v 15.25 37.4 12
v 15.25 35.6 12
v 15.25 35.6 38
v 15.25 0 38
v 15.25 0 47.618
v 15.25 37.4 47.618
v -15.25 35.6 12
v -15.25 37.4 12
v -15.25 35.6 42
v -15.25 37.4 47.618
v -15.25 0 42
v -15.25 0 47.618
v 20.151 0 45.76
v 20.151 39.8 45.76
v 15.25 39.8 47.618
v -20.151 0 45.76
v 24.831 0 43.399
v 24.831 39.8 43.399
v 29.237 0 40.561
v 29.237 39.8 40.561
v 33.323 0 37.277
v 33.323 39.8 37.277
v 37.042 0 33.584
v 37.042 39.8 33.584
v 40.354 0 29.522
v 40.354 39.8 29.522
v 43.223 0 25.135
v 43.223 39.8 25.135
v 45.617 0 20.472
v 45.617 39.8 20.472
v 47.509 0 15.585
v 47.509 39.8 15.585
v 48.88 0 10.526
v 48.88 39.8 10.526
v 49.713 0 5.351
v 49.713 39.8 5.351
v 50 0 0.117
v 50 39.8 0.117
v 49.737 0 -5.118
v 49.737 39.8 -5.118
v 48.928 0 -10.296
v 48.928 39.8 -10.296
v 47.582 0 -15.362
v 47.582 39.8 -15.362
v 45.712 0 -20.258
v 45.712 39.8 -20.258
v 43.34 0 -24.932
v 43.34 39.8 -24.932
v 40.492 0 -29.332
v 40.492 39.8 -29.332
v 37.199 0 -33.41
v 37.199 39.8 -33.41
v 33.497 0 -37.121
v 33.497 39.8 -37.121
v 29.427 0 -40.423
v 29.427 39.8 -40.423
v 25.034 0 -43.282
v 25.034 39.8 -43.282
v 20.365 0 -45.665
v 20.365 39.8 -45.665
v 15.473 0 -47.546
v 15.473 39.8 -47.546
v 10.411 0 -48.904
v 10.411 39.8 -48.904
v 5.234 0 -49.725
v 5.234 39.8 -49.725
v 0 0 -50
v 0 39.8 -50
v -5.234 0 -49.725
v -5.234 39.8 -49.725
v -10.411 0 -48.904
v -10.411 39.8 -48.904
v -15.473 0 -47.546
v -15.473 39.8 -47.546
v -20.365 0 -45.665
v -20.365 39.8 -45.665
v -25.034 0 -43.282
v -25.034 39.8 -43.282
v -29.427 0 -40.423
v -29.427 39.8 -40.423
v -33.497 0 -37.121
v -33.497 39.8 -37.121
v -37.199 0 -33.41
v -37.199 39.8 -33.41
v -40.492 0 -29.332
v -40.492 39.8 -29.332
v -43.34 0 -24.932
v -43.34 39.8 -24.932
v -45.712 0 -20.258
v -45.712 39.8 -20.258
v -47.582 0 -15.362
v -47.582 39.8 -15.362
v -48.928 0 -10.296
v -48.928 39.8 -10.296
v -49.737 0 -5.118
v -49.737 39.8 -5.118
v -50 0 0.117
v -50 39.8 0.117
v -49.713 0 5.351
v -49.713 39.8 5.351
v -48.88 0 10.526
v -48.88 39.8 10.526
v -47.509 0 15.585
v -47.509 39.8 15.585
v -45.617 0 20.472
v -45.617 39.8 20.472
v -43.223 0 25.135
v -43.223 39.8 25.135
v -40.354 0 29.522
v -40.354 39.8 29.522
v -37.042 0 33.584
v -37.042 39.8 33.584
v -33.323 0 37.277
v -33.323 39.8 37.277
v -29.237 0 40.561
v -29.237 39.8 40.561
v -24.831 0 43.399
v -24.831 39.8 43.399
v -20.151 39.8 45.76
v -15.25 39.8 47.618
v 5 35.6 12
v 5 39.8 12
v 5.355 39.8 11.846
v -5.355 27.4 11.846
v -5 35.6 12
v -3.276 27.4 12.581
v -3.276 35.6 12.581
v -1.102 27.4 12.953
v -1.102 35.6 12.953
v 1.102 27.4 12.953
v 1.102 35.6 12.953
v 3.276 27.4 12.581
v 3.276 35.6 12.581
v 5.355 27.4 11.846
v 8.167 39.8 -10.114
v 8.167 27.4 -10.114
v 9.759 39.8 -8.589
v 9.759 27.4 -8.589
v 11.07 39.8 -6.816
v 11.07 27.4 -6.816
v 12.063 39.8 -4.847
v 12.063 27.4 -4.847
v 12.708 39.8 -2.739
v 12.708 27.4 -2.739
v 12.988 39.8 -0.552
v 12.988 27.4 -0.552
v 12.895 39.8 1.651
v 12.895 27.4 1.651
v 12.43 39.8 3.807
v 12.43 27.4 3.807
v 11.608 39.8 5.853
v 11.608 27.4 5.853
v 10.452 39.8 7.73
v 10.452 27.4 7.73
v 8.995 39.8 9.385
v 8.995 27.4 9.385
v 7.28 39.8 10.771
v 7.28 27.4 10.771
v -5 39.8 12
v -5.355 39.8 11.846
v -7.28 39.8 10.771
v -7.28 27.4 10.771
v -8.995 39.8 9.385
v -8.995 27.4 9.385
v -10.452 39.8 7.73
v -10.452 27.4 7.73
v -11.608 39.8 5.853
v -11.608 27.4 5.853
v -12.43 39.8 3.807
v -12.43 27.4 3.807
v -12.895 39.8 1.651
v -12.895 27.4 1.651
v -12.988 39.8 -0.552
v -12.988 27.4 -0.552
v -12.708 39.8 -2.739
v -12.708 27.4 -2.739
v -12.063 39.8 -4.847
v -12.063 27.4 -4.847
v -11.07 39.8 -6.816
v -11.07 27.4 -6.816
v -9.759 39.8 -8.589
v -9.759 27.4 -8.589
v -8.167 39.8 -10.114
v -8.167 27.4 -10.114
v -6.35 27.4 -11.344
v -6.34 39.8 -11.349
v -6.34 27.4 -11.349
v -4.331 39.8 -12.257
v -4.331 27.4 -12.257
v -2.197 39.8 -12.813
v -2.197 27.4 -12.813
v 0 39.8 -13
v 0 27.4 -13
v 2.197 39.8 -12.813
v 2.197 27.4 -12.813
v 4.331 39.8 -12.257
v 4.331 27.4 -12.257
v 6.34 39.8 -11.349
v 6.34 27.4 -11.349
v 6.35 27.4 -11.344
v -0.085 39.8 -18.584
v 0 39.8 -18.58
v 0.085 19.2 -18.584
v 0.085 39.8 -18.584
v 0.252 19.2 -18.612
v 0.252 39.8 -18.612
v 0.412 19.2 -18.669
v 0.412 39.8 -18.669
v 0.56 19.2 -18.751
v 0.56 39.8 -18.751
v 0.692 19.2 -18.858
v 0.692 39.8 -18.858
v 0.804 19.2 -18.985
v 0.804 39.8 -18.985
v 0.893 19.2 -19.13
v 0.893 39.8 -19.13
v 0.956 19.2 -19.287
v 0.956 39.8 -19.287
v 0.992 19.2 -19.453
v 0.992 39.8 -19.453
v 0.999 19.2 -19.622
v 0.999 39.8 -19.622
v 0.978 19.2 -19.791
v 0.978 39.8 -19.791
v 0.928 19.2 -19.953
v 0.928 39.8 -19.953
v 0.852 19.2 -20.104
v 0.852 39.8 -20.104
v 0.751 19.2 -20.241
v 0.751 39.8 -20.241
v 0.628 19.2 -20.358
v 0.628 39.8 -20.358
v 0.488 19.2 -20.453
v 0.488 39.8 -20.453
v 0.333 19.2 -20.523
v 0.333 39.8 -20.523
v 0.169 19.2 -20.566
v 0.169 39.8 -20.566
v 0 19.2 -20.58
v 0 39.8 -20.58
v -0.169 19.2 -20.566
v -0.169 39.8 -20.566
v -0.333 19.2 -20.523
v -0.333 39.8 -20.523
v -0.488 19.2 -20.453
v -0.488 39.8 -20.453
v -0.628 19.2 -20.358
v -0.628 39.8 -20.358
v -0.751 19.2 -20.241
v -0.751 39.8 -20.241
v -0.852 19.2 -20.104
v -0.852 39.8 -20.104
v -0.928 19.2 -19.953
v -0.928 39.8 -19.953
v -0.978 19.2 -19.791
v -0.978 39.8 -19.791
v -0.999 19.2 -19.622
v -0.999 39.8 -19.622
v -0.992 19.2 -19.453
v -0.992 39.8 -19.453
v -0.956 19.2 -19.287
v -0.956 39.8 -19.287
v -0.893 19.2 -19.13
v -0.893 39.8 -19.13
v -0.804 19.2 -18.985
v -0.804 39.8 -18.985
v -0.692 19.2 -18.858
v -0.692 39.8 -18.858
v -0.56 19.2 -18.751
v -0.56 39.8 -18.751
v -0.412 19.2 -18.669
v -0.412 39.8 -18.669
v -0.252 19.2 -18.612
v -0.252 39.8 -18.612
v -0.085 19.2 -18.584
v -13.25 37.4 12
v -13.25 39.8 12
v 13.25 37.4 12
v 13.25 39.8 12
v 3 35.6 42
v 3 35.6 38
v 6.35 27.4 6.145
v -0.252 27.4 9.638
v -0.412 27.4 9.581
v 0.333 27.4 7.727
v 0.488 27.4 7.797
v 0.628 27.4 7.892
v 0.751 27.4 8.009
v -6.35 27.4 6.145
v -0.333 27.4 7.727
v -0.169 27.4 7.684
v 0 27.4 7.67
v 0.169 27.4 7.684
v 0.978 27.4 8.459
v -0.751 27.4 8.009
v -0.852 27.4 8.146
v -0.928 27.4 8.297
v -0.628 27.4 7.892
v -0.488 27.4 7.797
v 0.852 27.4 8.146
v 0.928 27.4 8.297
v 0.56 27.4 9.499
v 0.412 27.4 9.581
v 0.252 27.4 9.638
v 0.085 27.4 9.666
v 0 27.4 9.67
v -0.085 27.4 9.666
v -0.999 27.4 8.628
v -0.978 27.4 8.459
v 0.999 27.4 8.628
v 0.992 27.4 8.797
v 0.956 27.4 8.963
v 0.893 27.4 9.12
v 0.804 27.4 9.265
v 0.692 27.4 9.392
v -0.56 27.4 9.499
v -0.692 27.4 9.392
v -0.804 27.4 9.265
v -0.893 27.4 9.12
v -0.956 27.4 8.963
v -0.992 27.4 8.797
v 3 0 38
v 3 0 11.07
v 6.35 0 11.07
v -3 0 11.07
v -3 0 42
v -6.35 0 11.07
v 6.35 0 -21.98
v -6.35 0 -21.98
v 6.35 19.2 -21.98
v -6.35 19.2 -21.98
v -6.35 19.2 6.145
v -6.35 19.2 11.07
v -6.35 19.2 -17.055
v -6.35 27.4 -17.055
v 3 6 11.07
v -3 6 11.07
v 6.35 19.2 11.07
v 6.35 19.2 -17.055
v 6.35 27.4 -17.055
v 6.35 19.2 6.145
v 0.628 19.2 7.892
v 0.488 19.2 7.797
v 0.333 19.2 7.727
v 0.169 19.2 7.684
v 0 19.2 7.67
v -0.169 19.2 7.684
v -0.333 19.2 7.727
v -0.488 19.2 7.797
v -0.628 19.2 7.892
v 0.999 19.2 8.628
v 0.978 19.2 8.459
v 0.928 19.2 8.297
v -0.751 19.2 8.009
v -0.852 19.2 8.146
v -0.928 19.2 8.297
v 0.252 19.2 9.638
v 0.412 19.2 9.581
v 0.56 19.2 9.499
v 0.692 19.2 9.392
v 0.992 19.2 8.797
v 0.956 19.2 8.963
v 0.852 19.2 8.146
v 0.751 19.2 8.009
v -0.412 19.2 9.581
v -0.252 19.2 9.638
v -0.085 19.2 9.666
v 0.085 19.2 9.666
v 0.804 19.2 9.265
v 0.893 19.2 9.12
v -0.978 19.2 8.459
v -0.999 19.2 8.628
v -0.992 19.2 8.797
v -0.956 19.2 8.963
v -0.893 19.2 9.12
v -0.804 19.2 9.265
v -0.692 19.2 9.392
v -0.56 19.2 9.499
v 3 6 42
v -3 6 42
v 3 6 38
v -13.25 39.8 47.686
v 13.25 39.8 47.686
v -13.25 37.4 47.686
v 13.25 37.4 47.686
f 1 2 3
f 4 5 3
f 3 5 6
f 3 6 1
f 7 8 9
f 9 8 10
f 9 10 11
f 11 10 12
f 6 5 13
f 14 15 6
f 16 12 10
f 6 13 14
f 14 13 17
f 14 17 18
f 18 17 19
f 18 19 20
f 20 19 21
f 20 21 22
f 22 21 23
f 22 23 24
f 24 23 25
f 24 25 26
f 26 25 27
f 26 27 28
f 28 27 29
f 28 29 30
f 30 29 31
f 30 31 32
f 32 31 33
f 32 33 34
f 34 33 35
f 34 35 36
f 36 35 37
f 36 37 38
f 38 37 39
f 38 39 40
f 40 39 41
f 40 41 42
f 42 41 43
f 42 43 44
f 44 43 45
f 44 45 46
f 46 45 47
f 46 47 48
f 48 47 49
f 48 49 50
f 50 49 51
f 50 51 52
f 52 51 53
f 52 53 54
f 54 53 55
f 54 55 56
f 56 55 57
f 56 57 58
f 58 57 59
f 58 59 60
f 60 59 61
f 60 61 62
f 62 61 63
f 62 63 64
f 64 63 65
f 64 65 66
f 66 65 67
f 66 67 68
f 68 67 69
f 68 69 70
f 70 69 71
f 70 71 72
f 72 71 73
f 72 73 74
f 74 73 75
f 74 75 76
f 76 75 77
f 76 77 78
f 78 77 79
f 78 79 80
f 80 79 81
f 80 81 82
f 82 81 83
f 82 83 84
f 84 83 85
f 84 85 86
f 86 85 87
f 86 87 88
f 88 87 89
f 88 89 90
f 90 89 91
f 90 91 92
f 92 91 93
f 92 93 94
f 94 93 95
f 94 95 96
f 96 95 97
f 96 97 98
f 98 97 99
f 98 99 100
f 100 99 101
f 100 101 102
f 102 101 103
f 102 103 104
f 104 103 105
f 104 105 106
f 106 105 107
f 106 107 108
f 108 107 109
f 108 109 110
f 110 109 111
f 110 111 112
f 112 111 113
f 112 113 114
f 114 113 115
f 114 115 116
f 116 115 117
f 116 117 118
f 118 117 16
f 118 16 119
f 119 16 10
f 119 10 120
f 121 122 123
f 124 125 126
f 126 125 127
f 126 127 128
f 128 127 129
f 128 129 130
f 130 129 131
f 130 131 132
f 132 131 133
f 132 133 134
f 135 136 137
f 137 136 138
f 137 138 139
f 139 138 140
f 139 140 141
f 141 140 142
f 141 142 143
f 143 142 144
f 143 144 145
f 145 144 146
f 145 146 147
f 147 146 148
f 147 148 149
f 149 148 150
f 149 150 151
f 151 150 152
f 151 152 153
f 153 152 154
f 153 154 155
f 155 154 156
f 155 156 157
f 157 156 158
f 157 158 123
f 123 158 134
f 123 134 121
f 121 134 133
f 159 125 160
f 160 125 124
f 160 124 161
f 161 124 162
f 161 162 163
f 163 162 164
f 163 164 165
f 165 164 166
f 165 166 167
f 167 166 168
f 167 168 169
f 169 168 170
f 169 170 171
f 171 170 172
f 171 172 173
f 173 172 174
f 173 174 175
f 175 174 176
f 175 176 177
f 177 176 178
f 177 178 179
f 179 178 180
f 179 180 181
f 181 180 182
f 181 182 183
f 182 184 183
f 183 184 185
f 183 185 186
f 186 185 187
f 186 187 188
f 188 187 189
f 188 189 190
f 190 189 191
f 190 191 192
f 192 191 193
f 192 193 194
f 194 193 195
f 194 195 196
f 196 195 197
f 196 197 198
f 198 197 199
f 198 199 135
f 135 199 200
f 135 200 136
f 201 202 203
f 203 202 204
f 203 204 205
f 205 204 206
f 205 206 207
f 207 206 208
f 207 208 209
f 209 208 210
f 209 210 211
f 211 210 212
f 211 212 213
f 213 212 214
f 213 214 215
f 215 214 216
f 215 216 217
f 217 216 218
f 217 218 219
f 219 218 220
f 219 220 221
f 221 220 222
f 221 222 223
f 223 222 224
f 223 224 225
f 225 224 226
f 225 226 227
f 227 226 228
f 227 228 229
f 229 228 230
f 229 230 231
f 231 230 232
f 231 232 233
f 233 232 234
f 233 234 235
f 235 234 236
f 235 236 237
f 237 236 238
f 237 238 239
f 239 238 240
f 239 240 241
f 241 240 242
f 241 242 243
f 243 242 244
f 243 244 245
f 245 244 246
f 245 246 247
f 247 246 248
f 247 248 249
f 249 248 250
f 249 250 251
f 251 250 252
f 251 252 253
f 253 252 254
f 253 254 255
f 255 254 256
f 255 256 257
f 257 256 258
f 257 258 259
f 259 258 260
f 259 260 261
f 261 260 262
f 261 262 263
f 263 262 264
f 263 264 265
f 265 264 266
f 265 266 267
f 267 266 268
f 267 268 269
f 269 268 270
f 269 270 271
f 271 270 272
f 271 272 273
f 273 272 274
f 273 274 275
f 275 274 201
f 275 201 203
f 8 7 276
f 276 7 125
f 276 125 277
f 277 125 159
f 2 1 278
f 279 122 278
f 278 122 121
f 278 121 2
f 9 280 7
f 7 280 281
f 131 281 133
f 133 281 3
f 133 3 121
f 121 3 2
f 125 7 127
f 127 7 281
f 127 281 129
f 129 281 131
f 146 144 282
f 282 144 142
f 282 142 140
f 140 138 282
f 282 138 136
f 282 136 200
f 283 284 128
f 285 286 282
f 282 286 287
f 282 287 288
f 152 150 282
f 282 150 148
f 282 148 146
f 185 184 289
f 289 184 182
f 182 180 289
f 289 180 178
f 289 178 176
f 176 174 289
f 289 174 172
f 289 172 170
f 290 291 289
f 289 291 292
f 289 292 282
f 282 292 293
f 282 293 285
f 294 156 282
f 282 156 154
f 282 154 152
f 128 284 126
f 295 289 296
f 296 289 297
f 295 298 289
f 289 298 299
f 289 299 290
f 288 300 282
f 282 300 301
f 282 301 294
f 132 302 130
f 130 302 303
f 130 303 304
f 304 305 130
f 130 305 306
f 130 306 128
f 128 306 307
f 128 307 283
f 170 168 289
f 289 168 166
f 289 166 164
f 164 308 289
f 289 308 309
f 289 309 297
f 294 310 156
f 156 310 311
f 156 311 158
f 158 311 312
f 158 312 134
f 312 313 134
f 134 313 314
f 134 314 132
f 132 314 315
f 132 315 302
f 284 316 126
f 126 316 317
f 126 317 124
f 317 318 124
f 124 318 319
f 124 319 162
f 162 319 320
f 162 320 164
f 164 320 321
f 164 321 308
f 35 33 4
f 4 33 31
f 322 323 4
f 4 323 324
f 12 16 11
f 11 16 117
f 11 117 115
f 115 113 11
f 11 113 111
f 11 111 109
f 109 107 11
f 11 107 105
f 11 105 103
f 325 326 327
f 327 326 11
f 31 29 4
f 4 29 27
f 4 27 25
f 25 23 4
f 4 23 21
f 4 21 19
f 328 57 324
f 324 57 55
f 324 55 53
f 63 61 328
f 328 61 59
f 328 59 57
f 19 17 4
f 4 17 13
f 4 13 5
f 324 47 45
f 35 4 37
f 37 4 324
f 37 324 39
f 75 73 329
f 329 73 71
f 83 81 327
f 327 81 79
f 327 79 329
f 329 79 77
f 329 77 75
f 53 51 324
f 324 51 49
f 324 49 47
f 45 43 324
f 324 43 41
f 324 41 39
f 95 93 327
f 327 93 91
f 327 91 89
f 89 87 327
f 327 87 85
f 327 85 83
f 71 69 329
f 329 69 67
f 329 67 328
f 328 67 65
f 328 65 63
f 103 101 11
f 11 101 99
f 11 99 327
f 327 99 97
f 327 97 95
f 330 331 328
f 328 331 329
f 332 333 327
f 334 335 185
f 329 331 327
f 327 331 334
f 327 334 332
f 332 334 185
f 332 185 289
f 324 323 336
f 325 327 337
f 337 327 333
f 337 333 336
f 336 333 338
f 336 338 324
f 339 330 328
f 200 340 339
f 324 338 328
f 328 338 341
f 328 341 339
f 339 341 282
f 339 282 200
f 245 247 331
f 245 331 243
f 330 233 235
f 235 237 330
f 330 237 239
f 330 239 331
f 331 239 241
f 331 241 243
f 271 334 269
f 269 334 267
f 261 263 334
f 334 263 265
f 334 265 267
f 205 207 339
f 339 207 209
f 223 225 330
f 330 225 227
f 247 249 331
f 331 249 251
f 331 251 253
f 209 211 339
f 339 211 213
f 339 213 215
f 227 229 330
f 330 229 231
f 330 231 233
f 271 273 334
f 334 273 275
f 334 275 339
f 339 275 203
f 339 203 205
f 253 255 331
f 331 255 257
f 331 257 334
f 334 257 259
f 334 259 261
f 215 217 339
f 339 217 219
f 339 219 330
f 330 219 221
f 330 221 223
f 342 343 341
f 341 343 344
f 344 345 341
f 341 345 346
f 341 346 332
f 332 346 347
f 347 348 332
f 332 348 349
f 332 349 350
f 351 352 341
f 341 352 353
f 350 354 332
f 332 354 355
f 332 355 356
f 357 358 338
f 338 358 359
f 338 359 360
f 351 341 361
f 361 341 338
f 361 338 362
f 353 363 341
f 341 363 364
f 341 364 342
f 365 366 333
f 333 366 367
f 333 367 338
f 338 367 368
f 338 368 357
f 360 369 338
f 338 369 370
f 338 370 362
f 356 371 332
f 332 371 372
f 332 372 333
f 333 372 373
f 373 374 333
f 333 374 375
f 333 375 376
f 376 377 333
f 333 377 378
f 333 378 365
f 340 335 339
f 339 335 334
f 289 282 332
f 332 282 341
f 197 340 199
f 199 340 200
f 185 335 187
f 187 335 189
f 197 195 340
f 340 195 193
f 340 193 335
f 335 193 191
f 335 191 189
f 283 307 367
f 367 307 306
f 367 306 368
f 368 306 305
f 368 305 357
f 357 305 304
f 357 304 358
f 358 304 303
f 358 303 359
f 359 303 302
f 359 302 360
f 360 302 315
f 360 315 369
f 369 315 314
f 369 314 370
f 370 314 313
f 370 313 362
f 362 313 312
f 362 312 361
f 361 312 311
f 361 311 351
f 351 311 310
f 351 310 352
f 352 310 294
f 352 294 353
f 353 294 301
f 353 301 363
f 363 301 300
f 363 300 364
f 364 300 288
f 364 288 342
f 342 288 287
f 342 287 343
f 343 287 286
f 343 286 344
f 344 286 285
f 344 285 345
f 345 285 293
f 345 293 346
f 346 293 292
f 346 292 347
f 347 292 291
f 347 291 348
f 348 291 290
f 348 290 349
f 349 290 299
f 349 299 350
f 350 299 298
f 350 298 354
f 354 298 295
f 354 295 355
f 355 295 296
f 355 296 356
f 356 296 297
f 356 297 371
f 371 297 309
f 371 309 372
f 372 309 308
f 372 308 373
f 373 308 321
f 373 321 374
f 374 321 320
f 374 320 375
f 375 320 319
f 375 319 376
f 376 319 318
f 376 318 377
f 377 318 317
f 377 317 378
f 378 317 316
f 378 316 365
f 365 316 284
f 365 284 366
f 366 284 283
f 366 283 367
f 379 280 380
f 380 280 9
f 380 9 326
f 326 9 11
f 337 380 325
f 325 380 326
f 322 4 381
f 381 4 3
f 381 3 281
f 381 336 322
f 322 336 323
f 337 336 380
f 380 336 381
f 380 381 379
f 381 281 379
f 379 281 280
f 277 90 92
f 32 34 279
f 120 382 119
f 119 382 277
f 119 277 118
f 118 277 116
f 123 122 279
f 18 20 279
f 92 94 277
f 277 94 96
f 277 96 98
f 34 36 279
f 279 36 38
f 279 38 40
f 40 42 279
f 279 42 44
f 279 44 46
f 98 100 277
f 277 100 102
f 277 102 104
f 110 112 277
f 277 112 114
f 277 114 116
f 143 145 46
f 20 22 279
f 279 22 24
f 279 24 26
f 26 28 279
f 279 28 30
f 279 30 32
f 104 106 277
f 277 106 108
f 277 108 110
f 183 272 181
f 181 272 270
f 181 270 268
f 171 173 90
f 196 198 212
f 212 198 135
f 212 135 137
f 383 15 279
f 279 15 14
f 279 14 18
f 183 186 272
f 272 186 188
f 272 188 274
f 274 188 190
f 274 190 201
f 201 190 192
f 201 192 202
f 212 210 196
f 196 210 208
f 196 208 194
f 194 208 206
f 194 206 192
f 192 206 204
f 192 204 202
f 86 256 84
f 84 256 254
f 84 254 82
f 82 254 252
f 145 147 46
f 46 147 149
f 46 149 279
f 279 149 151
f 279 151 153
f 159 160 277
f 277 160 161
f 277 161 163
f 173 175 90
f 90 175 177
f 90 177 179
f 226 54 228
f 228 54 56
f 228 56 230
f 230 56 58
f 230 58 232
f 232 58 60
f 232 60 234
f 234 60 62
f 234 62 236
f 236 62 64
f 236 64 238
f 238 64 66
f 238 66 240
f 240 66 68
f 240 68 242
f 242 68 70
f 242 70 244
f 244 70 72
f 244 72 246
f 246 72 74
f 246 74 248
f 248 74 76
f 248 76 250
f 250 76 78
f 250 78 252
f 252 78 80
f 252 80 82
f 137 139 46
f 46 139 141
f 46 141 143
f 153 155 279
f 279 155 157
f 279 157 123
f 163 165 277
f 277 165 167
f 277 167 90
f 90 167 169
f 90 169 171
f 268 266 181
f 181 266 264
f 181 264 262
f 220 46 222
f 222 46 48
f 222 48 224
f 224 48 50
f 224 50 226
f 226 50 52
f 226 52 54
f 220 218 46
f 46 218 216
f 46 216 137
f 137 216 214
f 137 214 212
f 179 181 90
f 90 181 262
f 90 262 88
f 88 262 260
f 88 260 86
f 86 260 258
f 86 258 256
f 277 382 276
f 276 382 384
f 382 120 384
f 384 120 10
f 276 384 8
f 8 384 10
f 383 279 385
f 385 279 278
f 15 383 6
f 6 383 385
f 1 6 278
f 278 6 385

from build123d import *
from build123d.topology import SkipClean

# Parameters (mm, degrees)
SKETCH7_R            = 50
SKETCH7_W            = 12.7
SKETCH7_H            = 33.05
BOSS_EXTRUDE4_DEPTH  = 19.2
SKETCH8_R            = 50
SKETCH8_W            = 12.7
SKETCH8_H            = 23.2
BOSS_EXTRUDE5_DEPTH  = 8.2
SKETCH11_R           = 50
SKETCH11_R_2         = 13
BOSS_EXTRUDE6_DEPTH  = 8.2
SKETCH12_R           = 1
CUT_EXTRUDE4_DEPTH   = 74.271003815
SKETCH13_W           = 30.5
SKETCH13_H           = 8
CUT_EXTRUDE5_DEPTH   = 35.6
CUT_EXTRUDE6_DEPTH   = 6
SKETCH15_W           = 12.25
SKETCH15_H           = 4
CUT_EXTRUDE7_DEPTH   = 29.6
SKETCH16_R           = 1
BOSS_EXTRUDE11_DEPTH = 5.2
CUT_EXTRUDE8_START   = -1
SKETCH20_R           = 50
CUT_EXTRUDE8_DEPTH   = 1
BOSS_EXTRUDE12_DEPTH = 2.4


with BuildPart() as part:
    # Sketch7 → Boss-Extrude4 (new body)
    with BuildSketch(Plane(origin=(0, 0, 0), x_dir=(1, 0, 0), z_dir=(0, 1, 0))):
        with Locations(Location((0, 0, 0), (0, 0, 270))):
            Circle(SKETCH7_R)
        with Locations((0, 5.455)):
            Rectangle(SKETCH7_W, SKETCH7_H, mode=Mode.SUBTRACT)
    extrude(amount=BOSS_EXTRUDE4_DEPTH)

    # Sketch8 → Boss-Extrude5 (add)
    with BuildSketch(Plane(origin=(0, 19.2, 0), x_dir=(1, 0, 0), z_dir=(0, 1, 0))):
        with Locations(Location((0, 0, 0), (0, 0, 270))):
            Circle(SKETCH8_R)
        with Locations((0, 5.455)):
            Rectangle(SKETCH8_W, SKETCH8_H, mode=Mode.SUBTRACT)
    extrude(amount=BOSS_EXTRUDE5_DEPTH)

    # Sketch11 → Boss-Extrude6 (add)
    with BuildSketch(Plane(origin=(0, 27.4, 0), x_dir=(1, 0, 0), z_dir=(0, 1, 0))):
        with Locations(Location((0, 0, 0), (0, 0, 270))):
            Circle(SKETCH11_R)
        with Locations(Location((0, 0, 0), (0, 0, 119.239513028))):
            Circle(SKETCH11_R_2, mode=Mode.SUBTRACT)
    extrude(amount=BOSS_EXTRUDE6_DEPTH)

    # Sketch12 → Cut-Extrude4 (cut, through all)
    with BuildSketch(Plane.XZ.offset(-19.2)):
        with Locations(Location((0, 8.67, 0), (0, 0, 270))):
            Circle(SKETCH12_R)
        with Locations(Location((0, -19.58, 0), (0, 0, 270))):
            Circle(SKETCH12_R)
    extrude(amount=-CUT_EXTRUDE4_DEPTH, mode=Mode.SUBTRACT)

    # Sketch13 → Cut-Extrude5 (cut)
    with BuildSketch(Plane.XZ):
        with Locations((0, 46)):
            Rectangle(SKETCH13_W, SKETCH13_H)
    extrude(amount=-CUT_EXTRUDE5_DEPTH, mode=Mode.SUBTRACT)

    # Sketch14 → Cut-Extrude6 (cut)
    with BuildSketch(Plane.XZ):
        Polygon((-3, 11.07), (3, 11.07), (3, 38), (15.25, 38), (15.25, 42), (3, 42), (-3, 42), align=None)
    extrude(amount=-CUT_EXTRUDE6_DEPTH, mode=Mode.SUBTRACT)

    # Sketch15 → Cut-Extrude7 (cut)
    with BuildSketch(Plane.XZ.offset(-6)):
        with Locations((9.125, 40)):
            Rectangle(SKETCH15_W, SKETCH15_H)
    extrude(amount=-CUT_EXTRUDE7_DEPTH, mode=Mode.SUBTRACT)

    # Sketch16 → Boss-Extrude11 (add)
    with BuildSketch(Plane(origin=(0, 35.6, 0), x_dir=(1, 0, 0), z_dir=(0, 1, 0))):
        with BuildLine():
            ThreePointArc((15.25, -47.617617538), (0, 50), (-15.25, -47.617617538))
            Line((-15.25, -47.617617538), (-15.25, -42))
            Line((-15.25, -42), (-15.25, -12))
            Line((-15.25, -12), (-5, -12))
            ThreePointArc((-5, -12), (-7.211102551, 10.816653826), (13, 0))
            ThreePointArc((13, 0), (10.816653826, -7.211102551), (5, -12))
            Line((5, -12), (15.25, -12))
            Line((15.25, -12), (15.25, -38))
            Line((15.25, -38), (15.25, -47.617617538))
        make_face()
        with Locations(Location((0, 19.58, 0), (0, 0, 90))):
            Circle(SKETCH16_R, mode=Mode.SUBTRACT)
    extrude(amount=BOSS_EXTRUDE11_DEPTH)

    # Sketch20 → Cut-Extrude8 (cut)
    with SkipClean():  # the faces are left unmerged after this step: merging them gives an invalid solid
        with BuildSketch(Plane(origin=(0, 40.8, 0), x_dir=(1, 0, 0), z_dir=(0, 1, 0)).offset(CUT_EXTRUDE8_START)):
            Circle(SKETCH20_R)
        extrude(amount=CUT_EXTRUDE8_DEPTH, mode=Mode.SUBTRACT)

    # Sketch21 → Boss-Extrude12 (add)
    with SkipClean():  # the faces are left unmerged after this step: merging them gives an invalid solid
        with BuildSketch(Plane(origin=(0, 39.8, 0), x_dir=(1, 0, 0), z_dir=(0, 1, 0))):
            Polygon((-15.25, -12), (-13.25, -12), (-13.25, -47.685588874), (-15.25, -47.617617538), align=None)
            Polygon((13.25, -47.685588874), (15.25, -47.617617538), (15.25, -12), (13.25, -12), align=None)
        extrude(amount=-BOSS_EXTRUDE12_DEPTH)


solid = part.part
